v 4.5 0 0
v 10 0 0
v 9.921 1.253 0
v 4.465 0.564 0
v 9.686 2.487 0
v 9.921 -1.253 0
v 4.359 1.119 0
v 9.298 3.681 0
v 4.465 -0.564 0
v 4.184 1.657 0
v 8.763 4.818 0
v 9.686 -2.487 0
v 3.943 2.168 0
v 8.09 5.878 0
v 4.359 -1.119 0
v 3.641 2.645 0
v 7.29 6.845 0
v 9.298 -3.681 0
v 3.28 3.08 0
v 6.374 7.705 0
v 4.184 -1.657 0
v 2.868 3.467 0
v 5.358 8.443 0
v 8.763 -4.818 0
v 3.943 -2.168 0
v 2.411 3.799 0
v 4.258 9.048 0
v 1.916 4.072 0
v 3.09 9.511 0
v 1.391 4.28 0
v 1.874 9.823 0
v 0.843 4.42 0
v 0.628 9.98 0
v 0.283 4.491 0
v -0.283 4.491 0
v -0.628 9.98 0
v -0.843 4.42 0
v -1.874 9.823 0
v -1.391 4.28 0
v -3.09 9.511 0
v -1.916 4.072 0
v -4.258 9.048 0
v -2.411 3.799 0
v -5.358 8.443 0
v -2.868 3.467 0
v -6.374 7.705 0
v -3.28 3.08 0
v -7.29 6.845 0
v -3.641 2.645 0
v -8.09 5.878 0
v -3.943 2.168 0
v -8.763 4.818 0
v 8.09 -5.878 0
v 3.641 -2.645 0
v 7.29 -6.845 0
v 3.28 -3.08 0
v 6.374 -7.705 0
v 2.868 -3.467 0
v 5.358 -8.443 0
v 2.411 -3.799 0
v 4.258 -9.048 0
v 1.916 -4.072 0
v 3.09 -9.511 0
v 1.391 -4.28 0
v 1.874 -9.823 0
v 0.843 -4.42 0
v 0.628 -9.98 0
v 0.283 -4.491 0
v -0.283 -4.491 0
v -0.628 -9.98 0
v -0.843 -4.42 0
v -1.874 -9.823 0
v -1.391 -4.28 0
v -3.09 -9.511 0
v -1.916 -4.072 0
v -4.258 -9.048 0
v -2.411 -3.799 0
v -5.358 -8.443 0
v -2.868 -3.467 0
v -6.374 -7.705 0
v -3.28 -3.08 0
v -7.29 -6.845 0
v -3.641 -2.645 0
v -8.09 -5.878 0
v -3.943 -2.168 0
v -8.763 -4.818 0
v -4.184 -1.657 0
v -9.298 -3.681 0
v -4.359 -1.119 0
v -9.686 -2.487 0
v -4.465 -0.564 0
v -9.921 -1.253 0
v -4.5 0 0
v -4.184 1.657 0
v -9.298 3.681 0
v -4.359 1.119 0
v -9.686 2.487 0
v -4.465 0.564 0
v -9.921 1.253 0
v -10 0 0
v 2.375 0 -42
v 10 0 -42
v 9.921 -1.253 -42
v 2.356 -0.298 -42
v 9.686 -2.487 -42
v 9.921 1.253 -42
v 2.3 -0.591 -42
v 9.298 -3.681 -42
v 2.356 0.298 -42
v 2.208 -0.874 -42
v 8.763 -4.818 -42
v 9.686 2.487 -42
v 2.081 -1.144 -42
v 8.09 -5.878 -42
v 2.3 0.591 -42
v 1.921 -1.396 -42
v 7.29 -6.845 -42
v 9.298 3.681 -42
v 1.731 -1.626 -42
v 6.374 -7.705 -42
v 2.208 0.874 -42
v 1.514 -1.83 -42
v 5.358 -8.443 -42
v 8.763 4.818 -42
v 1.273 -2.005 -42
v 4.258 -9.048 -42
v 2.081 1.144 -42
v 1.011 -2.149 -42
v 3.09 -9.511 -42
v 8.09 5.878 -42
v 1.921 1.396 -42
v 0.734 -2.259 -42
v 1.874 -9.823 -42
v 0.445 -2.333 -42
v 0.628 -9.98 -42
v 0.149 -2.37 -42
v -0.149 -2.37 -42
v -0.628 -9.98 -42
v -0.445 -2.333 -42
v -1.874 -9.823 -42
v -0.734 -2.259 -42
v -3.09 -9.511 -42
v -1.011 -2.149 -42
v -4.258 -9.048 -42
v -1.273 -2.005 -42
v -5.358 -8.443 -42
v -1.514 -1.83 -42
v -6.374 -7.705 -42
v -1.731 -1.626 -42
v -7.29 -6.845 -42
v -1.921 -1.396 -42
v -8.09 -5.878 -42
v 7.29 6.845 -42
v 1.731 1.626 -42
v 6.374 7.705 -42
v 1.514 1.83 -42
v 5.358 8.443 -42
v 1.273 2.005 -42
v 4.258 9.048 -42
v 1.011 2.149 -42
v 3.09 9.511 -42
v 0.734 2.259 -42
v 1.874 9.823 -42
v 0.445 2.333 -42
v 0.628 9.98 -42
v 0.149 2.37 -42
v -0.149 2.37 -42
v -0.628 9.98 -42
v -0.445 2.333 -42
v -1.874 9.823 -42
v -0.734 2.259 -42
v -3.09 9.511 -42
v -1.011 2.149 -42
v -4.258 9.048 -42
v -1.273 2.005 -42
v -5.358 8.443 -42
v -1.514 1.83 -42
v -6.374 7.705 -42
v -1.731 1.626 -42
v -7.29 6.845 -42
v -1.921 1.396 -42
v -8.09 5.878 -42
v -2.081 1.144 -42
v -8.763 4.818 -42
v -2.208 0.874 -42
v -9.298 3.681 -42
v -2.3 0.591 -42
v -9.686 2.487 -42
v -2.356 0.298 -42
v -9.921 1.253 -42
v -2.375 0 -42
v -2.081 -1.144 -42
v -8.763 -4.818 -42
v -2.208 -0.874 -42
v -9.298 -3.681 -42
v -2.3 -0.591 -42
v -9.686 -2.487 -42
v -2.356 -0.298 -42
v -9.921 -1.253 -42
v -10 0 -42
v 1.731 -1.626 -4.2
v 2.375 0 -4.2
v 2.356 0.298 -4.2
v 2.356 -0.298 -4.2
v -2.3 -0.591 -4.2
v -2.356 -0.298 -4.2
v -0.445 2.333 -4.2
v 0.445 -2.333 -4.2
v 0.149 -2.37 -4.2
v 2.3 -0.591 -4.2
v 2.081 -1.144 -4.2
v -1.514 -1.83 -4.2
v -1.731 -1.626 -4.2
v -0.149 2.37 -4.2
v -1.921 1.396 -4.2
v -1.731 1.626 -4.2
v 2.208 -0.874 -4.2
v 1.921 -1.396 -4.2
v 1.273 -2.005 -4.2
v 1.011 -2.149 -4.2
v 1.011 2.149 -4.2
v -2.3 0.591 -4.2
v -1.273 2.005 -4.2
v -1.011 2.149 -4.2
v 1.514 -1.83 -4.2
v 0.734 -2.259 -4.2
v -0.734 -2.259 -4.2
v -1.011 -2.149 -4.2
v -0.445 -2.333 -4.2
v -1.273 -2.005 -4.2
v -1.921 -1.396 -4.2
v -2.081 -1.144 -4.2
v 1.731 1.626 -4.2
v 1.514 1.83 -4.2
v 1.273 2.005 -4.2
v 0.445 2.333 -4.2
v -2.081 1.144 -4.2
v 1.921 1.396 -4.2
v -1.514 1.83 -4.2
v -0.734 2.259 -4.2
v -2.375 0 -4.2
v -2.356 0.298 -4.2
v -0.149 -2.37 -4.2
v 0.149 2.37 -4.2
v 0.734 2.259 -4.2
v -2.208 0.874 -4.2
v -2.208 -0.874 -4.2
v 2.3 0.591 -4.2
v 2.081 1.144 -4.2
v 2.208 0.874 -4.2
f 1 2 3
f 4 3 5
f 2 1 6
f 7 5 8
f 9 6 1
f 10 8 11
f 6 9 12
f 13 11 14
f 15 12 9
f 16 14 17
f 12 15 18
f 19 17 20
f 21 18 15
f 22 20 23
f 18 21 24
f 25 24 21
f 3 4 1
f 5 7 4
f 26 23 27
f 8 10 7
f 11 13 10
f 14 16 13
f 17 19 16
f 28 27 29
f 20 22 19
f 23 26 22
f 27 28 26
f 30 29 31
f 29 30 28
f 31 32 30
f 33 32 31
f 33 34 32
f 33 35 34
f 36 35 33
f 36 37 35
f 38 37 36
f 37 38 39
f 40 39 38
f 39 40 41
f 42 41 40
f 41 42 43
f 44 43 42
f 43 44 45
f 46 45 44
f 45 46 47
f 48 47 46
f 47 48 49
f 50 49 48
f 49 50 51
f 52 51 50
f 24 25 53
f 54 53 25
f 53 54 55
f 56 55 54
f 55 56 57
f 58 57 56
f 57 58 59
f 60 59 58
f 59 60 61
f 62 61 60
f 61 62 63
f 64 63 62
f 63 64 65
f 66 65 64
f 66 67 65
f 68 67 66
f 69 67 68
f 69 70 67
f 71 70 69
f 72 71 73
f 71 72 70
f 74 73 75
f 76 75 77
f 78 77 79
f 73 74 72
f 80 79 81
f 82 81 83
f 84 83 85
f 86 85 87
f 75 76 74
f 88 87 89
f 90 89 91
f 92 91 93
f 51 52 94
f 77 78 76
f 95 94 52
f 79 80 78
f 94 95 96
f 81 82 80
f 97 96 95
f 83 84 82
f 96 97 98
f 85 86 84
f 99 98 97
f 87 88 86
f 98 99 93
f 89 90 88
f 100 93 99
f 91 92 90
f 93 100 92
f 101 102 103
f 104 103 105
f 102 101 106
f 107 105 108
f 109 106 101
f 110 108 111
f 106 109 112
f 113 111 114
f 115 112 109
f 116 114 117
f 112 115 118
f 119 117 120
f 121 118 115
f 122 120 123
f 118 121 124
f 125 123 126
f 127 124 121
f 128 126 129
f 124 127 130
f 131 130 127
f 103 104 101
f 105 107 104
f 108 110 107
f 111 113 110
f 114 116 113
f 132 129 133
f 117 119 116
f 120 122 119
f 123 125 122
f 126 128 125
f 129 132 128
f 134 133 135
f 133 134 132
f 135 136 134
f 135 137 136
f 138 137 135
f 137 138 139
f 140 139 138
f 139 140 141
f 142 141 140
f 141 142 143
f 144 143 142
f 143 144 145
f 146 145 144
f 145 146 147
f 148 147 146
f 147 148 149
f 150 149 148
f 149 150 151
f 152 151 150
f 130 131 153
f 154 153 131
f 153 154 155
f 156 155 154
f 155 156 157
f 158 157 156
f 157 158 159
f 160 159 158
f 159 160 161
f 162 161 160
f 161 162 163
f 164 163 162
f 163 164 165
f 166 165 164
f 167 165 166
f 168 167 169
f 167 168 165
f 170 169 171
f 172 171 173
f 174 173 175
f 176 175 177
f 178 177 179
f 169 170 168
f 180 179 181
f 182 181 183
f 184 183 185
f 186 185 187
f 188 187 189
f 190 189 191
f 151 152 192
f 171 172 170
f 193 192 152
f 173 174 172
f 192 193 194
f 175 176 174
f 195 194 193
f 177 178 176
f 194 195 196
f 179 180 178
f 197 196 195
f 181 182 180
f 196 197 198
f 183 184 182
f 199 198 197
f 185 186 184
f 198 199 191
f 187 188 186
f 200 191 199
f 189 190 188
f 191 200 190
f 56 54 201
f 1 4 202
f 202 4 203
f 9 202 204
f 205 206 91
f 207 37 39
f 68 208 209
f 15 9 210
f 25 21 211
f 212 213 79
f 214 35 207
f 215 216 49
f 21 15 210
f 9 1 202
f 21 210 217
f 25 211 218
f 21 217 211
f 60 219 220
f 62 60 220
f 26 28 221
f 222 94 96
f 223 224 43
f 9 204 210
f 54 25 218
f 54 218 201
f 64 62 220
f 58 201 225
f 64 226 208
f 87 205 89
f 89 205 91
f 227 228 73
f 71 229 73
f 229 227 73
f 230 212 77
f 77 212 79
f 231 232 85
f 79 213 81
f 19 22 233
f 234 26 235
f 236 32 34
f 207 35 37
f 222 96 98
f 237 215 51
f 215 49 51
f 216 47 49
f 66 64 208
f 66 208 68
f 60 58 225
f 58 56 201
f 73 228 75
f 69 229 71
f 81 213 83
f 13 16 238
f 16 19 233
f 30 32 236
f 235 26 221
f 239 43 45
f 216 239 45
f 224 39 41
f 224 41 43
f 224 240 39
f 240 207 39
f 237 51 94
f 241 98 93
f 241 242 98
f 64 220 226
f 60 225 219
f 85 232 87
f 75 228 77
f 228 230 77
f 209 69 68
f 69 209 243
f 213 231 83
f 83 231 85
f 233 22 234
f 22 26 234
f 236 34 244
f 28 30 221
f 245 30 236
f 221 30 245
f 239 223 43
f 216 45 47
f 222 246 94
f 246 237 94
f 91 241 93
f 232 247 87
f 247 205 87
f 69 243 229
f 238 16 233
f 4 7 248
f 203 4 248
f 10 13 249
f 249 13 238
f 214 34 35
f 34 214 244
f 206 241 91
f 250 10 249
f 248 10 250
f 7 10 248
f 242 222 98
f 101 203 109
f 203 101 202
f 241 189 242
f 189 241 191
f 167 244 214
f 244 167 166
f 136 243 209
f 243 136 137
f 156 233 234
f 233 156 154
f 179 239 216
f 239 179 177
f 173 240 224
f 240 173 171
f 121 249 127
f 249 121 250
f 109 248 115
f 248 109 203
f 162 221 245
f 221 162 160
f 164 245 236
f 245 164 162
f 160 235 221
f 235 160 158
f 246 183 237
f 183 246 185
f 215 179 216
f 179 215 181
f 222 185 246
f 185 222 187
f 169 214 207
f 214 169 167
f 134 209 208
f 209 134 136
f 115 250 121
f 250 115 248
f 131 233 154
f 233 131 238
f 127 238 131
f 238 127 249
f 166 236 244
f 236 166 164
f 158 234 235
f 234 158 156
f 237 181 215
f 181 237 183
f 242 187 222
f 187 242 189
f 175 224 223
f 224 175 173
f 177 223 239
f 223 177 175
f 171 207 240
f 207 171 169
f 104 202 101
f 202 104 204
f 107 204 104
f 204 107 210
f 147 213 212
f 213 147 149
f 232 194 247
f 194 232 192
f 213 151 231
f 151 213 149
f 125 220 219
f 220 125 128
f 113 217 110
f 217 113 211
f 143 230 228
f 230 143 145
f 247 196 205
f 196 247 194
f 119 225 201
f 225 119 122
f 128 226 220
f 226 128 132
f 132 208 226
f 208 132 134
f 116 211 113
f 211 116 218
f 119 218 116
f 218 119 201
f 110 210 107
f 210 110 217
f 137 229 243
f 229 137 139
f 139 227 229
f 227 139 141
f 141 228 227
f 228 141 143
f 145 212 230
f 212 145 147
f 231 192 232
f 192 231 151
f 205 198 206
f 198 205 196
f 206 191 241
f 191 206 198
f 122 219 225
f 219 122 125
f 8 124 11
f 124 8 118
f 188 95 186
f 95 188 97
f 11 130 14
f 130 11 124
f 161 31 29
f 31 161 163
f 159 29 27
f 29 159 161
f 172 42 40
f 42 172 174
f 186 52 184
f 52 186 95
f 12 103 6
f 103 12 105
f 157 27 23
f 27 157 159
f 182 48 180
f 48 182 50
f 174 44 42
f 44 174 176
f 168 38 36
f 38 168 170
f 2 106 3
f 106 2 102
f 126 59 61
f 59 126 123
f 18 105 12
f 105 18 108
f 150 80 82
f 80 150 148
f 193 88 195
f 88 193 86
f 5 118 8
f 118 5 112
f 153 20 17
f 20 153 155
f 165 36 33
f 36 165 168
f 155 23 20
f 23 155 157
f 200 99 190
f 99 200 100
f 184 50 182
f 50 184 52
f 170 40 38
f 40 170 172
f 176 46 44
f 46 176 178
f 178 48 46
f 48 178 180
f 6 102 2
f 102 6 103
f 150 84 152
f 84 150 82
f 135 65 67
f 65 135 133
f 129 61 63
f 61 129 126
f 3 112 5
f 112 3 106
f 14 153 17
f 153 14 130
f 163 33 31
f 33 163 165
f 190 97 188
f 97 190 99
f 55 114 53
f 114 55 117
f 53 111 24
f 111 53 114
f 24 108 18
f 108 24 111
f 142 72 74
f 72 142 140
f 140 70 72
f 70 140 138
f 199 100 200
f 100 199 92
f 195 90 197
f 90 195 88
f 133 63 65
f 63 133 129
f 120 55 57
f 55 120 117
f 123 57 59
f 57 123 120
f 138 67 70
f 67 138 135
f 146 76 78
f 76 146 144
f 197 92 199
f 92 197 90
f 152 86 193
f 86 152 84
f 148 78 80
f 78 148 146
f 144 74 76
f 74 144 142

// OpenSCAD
$fn = 50;


difference() {
	union() {
		translate(v = [0, 0, -42.0000000000]) {
			cylinder(h = 42, r = 10.0000000000);
		}
		cylinder(h = 0, r = 19.0000000000);
	}
	union() {
		translate(v = [0, 0, 0]) {
			rotate(a = [0, 0, 0]) {
				difference() {
					union() {
						#translate(v = [0, 0, -42.0000000000]) {
							cylinder(h = 42, r = 2.2500000000);
						}
						#translate(v = [0, 0, -4.2000000000]) {
							cylinder(h = 4.2000000000, r = 10.0000000000, r1 = 2.3750000000, r2 = 4.5000000000);
						}
						#translate(v = [0, 0, -42.0000000000]) {
							cylinder(h = 42, r = 2.3750000000);
						}
						#translate(v = [0, 0, -42.0000000000]) {
							cylinder(h = 42, r = 2.2500000000);
						}
					}
					union();
				}
			}
		}
	}
}
